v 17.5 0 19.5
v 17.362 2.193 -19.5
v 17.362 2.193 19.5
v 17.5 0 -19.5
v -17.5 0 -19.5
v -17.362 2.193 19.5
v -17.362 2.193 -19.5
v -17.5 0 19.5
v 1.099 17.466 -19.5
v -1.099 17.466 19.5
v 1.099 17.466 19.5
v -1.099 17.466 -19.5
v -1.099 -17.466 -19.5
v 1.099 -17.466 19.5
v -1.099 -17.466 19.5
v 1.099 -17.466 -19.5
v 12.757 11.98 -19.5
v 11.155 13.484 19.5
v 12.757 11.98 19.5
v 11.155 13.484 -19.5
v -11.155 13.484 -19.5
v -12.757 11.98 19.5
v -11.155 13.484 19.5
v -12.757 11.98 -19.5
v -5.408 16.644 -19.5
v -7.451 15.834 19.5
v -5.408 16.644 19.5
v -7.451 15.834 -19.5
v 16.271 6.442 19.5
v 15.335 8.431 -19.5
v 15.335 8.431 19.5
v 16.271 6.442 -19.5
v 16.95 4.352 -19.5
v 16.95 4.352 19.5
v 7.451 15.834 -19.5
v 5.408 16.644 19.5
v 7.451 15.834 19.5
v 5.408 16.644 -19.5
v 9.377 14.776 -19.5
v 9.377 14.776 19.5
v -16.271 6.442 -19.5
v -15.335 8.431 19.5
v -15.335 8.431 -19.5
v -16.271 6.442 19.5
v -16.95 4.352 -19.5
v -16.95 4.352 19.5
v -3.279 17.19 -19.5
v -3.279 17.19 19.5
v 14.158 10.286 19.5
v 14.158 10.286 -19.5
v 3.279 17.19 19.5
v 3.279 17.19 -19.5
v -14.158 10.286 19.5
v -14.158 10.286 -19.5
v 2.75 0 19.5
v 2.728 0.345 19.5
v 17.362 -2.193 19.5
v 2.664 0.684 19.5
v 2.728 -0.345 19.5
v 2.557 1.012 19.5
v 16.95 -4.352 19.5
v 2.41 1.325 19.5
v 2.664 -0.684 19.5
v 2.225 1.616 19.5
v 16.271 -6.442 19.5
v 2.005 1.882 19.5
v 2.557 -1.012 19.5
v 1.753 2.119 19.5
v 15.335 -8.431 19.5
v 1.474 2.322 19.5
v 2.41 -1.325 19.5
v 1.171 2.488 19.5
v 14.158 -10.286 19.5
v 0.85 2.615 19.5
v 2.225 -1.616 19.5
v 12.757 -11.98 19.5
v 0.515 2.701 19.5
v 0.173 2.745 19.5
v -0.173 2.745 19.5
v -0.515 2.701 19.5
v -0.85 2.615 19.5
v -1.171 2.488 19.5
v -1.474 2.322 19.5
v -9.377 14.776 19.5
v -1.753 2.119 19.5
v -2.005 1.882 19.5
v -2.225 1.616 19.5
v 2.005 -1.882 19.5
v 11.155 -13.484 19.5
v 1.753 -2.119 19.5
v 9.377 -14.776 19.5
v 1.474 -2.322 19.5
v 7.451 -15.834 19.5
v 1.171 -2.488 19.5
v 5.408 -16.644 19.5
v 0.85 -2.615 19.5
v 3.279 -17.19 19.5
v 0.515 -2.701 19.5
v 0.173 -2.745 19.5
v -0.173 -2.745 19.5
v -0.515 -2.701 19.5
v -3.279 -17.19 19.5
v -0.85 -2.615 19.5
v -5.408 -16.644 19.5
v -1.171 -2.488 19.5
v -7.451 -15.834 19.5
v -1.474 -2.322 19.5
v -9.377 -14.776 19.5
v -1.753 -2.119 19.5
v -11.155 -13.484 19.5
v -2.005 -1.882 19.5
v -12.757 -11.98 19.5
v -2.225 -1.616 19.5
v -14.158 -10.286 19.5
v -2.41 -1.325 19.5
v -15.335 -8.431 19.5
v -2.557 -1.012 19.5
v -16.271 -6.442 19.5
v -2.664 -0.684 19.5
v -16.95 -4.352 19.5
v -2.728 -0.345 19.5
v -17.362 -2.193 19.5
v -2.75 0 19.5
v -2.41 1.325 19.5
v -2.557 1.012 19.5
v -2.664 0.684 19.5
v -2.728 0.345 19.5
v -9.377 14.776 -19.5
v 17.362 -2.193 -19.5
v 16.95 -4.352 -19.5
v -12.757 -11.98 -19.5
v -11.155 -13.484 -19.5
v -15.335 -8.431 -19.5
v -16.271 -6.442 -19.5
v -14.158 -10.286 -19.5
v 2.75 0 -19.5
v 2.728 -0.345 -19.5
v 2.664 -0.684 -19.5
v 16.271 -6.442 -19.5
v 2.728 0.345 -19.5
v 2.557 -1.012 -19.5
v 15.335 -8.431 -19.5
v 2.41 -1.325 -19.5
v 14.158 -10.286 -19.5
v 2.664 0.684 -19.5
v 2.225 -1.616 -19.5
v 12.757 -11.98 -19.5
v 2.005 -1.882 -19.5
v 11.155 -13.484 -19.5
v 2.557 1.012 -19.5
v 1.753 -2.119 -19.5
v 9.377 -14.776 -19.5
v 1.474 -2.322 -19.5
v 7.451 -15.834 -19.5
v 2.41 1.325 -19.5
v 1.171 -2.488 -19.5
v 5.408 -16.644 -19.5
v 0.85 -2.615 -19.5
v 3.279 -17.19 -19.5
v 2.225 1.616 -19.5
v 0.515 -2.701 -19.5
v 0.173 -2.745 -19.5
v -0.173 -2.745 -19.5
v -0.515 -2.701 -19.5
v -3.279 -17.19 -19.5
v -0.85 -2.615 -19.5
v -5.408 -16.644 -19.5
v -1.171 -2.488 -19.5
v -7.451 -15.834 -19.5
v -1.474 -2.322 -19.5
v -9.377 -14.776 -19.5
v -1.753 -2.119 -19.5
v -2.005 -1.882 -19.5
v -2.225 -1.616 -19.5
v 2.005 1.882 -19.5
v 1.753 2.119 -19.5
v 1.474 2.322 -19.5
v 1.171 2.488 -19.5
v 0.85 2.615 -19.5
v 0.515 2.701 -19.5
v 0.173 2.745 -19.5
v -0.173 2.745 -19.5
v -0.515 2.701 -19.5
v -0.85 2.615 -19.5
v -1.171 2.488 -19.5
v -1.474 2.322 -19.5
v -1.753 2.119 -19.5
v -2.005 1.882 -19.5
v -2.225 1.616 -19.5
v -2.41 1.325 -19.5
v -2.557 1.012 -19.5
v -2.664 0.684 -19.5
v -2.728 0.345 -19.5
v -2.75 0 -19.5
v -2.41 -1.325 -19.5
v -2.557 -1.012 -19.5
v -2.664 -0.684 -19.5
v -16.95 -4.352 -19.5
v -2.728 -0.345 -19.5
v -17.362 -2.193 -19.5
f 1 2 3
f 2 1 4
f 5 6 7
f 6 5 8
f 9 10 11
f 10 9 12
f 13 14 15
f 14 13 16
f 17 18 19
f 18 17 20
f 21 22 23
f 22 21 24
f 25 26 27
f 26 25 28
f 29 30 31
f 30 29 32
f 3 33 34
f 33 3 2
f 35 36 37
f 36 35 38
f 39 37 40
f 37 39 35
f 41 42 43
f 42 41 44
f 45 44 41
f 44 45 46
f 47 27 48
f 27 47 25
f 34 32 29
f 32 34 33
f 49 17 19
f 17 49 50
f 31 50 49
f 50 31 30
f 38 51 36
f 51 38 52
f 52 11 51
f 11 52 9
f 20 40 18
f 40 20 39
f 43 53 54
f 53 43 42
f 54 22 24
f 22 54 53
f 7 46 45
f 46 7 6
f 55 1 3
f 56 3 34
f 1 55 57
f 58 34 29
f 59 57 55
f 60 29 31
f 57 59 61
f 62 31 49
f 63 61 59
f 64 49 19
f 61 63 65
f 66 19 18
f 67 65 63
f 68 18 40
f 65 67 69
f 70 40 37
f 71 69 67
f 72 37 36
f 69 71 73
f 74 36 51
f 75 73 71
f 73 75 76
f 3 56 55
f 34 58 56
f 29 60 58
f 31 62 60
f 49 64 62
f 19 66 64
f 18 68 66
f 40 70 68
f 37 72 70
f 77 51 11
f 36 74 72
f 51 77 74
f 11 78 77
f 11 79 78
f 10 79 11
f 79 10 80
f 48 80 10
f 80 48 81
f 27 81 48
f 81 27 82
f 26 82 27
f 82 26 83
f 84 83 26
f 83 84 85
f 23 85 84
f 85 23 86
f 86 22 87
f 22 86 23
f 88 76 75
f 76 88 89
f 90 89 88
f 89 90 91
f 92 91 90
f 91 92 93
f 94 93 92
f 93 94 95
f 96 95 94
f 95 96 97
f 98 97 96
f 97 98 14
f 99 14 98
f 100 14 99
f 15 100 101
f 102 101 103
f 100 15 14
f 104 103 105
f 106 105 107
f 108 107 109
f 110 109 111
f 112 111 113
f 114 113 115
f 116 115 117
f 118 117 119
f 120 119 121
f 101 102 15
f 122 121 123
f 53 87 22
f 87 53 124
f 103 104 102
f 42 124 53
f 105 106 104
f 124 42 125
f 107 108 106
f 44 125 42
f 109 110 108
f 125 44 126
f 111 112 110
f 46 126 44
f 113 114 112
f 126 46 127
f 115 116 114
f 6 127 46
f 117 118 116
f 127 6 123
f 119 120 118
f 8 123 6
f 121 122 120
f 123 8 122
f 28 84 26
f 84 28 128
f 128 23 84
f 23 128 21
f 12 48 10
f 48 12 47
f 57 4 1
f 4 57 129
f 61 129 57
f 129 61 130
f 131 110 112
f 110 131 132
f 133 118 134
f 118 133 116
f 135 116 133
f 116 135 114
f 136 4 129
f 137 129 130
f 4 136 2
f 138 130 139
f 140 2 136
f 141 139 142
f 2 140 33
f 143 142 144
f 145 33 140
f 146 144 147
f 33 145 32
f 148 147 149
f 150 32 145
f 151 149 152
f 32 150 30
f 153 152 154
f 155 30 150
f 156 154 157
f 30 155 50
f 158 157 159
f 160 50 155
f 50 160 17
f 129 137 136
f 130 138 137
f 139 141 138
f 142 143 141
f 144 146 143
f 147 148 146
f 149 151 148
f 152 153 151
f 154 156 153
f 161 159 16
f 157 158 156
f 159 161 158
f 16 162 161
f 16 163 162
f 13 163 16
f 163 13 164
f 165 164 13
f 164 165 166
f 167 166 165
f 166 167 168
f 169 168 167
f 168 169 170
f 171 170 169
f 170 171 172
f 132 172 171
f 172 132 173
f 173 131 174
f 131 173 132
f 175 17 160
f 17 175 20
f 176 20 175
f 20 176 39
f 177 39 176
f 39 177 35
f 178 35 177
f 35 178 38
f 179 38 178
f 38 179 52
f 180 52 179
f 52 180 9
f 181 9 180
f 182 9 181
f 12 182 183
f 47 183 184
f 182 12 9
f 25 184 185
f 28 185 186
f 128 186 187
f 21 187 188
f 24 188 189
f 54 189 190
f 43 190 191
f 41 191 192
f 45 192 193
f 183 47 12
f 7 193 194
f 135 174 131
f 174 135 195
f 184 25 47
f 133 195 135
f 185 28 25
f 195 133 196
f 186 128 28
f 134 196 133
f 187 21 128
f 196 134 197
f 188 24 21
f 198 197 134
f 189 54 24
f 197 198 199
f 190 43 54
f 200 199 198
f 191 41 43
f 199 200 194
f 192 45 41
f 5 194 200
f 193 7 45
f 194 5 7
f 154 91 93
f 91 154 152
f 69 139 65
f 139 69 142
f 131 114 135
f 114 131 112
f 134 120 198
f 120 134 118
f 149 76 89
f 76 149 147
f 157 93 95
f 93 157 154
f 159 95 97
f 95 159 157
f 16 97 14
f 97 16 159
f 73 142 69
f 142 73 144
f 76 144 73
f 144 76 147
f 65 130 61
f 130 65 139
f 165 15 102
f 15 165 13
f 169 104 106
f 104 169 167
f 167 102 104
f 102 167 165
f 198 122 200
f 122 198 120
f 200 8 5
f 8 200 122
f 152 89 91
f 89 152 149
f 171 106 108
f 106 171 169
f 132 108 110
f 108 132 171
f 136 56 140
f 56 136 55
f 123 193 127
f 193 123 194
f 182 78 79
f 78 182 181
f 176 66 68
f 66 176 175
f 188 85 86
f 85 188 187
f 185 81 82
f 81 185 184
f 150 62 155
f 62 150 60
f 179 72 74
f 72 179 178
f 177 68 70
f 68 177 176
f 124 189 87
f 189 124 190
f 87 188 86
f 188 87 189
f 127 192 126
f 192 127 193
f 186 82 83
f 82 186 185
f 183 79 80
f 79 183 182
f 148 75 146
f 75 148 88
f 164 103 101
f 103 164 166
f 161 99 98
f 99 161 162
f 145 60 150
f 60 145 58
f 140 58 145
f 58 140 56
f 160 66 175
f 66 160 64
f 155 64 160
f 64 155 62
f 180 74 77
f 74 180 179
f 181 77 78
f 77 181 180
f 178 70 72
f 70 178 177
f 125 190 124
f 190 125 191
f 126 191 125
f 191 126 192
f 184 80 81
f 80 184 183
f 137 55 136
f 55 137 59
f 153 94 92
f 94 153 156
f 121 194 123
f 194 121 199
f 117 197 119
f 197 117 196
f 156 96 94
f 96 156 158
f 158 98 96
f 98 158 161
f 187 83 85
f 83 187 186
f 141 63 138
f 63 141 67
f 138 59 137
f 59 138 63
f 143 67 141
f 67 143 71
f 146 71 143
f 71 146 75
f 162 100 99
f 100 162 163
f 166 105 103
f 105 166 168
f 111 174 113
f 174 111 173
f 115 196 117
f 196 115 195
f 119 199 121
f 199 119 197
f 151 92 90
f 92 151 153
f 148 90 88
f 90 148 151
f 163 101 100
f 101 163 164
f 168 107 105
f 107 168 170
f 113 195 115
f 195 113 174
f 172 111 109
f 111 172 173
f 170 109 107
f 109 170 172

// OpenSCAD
$fn = 50;


difference() {
	union() {
		translate(v = [0, 0, -19.5000000000]) {
			cylinder(h = 39, r = 17.5000000000);
		}
	}
	union() {
		translate(v = [0, 0, -100.0000000000]) {
			cylinder(h = 200, r = 2.7500000000);
		}
	}
}
